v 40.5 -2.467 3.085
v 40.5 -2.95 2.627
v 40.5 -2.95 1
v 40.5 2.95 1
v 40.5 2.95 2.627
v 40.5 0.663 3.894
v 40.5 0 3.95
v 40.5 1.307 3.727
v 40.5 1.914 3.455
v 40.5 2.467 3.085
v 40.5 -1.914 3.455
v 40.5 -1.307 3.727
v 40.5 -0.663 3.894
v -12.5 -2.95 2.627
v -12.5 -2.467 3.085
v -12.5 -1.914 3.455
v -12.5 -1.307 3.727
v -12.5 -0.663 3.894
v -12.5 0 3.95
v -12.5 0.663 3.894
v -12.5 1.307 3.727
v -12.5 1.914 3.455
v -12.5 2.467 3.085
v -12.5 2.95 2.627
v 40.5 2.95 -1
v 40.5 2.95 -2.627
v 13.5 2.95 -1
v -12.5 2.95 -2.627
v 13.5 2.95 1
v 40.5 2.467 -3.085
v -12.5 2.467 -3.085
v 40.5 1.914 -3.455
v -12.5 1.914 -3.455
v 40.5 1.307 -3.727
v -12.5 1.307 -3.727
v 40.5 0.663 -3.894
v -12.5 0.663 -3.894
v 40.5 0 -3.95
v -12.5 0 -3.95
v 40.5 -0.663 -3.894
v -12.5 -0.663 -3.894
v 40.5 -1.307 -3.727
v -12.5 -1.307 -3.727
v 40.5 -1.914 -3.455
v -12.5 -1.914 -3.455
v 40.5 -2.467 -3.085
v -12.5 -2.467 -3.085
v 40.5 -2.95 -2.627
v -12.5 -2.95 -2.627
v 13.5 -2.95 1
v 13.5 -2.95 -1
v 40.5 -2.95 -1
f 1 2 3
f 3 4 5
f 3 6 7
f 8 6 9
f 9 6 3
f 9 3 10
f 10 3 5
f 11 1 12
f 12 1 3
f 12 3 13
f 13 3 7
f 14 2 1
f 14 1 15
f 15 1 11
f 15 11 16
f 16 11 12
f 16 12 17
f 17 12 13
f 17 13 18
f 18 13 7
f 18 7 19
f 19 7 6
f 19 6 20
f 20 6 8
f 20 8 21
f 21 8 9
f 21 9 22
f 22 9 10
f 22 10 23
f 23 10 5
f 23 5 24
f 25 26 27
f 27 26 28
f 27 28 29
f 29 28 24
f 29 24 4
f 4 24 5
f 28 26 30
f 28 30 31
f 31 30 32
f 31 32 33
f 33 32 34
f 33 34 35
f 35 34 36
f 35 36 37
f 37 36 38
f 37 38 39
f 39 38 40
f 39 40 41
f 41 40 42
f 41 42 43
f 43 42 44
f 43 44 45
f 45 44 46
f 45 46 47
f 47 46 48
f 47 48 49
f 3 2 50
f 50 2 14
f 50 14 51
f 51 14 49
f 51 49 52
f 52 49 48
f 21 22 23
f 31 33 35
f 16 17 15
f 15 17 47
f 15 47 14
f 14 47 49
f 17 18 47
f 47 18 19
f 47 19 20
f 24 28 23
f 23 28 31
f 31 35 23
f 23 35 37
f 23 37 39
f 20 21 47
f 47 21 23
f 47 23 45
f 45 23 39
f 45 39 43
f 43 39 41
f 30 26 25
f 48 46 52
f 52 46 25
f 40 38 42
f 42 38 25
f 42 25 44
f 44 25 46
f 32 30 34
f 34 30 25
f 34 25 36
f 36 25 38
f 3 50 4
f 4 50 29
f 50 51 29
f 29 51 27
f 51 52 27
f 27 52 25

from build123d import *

# Parameters (mm, degrees)
BOSS_EXTRUDE1_DEPTH      = 40.5
BOSS_EXTRUDE1_DEPTH_BACK = 12.5
CUT_EXTRUDE2_DEPTH       = 6.9


with BuildPart() as part:
    # Sketch1 → Boss-Extrude1 (new body, two sides)
    with BuildSketch(Plane(origin=(0, 0, 0), x_dir=(0, 0, -1), z_dir=(1, 0, 0))) as boss_extrude1_sk:
        with BuildLine():
            Line((-2.626785107, 2.95), (2.626785107, 2.95))
            ThreePointArc((2.626785107, 2.95), (3.95, 0), (2.626785107, -2.95))
            Line((2.626785107, -2.95), (-2.626785107, -2.95))
            ThreePointArc((-2.626785107, -2.95), (-3.95, 0), (-2.626785107, 2.95))
        make_face()
    extrude(amount=BOSS_EXTRUDE1_DEPTH)
    extrude(boss_extrude1_sk.sketch, amount=-BOSS_EXTRUDE1_DEPTH_BACK)

    # Sketch5 → Cut-Extrude2 (cut, through all)
    with BuildSketch(Plane(origin=(0, 2.95, 0), x_dir=(1, 0, 0), z_dir=(0, 1, 0))):
        Polygon((40.5, 0), (40.5, 1), (13.5, 1), (13.5, -1), (40.5, -1), align=None)
    extrude(amount=-CUT_EXTRUDE2_DEPTH, mode=Mode.SUBTRACT)


solid = part.part
